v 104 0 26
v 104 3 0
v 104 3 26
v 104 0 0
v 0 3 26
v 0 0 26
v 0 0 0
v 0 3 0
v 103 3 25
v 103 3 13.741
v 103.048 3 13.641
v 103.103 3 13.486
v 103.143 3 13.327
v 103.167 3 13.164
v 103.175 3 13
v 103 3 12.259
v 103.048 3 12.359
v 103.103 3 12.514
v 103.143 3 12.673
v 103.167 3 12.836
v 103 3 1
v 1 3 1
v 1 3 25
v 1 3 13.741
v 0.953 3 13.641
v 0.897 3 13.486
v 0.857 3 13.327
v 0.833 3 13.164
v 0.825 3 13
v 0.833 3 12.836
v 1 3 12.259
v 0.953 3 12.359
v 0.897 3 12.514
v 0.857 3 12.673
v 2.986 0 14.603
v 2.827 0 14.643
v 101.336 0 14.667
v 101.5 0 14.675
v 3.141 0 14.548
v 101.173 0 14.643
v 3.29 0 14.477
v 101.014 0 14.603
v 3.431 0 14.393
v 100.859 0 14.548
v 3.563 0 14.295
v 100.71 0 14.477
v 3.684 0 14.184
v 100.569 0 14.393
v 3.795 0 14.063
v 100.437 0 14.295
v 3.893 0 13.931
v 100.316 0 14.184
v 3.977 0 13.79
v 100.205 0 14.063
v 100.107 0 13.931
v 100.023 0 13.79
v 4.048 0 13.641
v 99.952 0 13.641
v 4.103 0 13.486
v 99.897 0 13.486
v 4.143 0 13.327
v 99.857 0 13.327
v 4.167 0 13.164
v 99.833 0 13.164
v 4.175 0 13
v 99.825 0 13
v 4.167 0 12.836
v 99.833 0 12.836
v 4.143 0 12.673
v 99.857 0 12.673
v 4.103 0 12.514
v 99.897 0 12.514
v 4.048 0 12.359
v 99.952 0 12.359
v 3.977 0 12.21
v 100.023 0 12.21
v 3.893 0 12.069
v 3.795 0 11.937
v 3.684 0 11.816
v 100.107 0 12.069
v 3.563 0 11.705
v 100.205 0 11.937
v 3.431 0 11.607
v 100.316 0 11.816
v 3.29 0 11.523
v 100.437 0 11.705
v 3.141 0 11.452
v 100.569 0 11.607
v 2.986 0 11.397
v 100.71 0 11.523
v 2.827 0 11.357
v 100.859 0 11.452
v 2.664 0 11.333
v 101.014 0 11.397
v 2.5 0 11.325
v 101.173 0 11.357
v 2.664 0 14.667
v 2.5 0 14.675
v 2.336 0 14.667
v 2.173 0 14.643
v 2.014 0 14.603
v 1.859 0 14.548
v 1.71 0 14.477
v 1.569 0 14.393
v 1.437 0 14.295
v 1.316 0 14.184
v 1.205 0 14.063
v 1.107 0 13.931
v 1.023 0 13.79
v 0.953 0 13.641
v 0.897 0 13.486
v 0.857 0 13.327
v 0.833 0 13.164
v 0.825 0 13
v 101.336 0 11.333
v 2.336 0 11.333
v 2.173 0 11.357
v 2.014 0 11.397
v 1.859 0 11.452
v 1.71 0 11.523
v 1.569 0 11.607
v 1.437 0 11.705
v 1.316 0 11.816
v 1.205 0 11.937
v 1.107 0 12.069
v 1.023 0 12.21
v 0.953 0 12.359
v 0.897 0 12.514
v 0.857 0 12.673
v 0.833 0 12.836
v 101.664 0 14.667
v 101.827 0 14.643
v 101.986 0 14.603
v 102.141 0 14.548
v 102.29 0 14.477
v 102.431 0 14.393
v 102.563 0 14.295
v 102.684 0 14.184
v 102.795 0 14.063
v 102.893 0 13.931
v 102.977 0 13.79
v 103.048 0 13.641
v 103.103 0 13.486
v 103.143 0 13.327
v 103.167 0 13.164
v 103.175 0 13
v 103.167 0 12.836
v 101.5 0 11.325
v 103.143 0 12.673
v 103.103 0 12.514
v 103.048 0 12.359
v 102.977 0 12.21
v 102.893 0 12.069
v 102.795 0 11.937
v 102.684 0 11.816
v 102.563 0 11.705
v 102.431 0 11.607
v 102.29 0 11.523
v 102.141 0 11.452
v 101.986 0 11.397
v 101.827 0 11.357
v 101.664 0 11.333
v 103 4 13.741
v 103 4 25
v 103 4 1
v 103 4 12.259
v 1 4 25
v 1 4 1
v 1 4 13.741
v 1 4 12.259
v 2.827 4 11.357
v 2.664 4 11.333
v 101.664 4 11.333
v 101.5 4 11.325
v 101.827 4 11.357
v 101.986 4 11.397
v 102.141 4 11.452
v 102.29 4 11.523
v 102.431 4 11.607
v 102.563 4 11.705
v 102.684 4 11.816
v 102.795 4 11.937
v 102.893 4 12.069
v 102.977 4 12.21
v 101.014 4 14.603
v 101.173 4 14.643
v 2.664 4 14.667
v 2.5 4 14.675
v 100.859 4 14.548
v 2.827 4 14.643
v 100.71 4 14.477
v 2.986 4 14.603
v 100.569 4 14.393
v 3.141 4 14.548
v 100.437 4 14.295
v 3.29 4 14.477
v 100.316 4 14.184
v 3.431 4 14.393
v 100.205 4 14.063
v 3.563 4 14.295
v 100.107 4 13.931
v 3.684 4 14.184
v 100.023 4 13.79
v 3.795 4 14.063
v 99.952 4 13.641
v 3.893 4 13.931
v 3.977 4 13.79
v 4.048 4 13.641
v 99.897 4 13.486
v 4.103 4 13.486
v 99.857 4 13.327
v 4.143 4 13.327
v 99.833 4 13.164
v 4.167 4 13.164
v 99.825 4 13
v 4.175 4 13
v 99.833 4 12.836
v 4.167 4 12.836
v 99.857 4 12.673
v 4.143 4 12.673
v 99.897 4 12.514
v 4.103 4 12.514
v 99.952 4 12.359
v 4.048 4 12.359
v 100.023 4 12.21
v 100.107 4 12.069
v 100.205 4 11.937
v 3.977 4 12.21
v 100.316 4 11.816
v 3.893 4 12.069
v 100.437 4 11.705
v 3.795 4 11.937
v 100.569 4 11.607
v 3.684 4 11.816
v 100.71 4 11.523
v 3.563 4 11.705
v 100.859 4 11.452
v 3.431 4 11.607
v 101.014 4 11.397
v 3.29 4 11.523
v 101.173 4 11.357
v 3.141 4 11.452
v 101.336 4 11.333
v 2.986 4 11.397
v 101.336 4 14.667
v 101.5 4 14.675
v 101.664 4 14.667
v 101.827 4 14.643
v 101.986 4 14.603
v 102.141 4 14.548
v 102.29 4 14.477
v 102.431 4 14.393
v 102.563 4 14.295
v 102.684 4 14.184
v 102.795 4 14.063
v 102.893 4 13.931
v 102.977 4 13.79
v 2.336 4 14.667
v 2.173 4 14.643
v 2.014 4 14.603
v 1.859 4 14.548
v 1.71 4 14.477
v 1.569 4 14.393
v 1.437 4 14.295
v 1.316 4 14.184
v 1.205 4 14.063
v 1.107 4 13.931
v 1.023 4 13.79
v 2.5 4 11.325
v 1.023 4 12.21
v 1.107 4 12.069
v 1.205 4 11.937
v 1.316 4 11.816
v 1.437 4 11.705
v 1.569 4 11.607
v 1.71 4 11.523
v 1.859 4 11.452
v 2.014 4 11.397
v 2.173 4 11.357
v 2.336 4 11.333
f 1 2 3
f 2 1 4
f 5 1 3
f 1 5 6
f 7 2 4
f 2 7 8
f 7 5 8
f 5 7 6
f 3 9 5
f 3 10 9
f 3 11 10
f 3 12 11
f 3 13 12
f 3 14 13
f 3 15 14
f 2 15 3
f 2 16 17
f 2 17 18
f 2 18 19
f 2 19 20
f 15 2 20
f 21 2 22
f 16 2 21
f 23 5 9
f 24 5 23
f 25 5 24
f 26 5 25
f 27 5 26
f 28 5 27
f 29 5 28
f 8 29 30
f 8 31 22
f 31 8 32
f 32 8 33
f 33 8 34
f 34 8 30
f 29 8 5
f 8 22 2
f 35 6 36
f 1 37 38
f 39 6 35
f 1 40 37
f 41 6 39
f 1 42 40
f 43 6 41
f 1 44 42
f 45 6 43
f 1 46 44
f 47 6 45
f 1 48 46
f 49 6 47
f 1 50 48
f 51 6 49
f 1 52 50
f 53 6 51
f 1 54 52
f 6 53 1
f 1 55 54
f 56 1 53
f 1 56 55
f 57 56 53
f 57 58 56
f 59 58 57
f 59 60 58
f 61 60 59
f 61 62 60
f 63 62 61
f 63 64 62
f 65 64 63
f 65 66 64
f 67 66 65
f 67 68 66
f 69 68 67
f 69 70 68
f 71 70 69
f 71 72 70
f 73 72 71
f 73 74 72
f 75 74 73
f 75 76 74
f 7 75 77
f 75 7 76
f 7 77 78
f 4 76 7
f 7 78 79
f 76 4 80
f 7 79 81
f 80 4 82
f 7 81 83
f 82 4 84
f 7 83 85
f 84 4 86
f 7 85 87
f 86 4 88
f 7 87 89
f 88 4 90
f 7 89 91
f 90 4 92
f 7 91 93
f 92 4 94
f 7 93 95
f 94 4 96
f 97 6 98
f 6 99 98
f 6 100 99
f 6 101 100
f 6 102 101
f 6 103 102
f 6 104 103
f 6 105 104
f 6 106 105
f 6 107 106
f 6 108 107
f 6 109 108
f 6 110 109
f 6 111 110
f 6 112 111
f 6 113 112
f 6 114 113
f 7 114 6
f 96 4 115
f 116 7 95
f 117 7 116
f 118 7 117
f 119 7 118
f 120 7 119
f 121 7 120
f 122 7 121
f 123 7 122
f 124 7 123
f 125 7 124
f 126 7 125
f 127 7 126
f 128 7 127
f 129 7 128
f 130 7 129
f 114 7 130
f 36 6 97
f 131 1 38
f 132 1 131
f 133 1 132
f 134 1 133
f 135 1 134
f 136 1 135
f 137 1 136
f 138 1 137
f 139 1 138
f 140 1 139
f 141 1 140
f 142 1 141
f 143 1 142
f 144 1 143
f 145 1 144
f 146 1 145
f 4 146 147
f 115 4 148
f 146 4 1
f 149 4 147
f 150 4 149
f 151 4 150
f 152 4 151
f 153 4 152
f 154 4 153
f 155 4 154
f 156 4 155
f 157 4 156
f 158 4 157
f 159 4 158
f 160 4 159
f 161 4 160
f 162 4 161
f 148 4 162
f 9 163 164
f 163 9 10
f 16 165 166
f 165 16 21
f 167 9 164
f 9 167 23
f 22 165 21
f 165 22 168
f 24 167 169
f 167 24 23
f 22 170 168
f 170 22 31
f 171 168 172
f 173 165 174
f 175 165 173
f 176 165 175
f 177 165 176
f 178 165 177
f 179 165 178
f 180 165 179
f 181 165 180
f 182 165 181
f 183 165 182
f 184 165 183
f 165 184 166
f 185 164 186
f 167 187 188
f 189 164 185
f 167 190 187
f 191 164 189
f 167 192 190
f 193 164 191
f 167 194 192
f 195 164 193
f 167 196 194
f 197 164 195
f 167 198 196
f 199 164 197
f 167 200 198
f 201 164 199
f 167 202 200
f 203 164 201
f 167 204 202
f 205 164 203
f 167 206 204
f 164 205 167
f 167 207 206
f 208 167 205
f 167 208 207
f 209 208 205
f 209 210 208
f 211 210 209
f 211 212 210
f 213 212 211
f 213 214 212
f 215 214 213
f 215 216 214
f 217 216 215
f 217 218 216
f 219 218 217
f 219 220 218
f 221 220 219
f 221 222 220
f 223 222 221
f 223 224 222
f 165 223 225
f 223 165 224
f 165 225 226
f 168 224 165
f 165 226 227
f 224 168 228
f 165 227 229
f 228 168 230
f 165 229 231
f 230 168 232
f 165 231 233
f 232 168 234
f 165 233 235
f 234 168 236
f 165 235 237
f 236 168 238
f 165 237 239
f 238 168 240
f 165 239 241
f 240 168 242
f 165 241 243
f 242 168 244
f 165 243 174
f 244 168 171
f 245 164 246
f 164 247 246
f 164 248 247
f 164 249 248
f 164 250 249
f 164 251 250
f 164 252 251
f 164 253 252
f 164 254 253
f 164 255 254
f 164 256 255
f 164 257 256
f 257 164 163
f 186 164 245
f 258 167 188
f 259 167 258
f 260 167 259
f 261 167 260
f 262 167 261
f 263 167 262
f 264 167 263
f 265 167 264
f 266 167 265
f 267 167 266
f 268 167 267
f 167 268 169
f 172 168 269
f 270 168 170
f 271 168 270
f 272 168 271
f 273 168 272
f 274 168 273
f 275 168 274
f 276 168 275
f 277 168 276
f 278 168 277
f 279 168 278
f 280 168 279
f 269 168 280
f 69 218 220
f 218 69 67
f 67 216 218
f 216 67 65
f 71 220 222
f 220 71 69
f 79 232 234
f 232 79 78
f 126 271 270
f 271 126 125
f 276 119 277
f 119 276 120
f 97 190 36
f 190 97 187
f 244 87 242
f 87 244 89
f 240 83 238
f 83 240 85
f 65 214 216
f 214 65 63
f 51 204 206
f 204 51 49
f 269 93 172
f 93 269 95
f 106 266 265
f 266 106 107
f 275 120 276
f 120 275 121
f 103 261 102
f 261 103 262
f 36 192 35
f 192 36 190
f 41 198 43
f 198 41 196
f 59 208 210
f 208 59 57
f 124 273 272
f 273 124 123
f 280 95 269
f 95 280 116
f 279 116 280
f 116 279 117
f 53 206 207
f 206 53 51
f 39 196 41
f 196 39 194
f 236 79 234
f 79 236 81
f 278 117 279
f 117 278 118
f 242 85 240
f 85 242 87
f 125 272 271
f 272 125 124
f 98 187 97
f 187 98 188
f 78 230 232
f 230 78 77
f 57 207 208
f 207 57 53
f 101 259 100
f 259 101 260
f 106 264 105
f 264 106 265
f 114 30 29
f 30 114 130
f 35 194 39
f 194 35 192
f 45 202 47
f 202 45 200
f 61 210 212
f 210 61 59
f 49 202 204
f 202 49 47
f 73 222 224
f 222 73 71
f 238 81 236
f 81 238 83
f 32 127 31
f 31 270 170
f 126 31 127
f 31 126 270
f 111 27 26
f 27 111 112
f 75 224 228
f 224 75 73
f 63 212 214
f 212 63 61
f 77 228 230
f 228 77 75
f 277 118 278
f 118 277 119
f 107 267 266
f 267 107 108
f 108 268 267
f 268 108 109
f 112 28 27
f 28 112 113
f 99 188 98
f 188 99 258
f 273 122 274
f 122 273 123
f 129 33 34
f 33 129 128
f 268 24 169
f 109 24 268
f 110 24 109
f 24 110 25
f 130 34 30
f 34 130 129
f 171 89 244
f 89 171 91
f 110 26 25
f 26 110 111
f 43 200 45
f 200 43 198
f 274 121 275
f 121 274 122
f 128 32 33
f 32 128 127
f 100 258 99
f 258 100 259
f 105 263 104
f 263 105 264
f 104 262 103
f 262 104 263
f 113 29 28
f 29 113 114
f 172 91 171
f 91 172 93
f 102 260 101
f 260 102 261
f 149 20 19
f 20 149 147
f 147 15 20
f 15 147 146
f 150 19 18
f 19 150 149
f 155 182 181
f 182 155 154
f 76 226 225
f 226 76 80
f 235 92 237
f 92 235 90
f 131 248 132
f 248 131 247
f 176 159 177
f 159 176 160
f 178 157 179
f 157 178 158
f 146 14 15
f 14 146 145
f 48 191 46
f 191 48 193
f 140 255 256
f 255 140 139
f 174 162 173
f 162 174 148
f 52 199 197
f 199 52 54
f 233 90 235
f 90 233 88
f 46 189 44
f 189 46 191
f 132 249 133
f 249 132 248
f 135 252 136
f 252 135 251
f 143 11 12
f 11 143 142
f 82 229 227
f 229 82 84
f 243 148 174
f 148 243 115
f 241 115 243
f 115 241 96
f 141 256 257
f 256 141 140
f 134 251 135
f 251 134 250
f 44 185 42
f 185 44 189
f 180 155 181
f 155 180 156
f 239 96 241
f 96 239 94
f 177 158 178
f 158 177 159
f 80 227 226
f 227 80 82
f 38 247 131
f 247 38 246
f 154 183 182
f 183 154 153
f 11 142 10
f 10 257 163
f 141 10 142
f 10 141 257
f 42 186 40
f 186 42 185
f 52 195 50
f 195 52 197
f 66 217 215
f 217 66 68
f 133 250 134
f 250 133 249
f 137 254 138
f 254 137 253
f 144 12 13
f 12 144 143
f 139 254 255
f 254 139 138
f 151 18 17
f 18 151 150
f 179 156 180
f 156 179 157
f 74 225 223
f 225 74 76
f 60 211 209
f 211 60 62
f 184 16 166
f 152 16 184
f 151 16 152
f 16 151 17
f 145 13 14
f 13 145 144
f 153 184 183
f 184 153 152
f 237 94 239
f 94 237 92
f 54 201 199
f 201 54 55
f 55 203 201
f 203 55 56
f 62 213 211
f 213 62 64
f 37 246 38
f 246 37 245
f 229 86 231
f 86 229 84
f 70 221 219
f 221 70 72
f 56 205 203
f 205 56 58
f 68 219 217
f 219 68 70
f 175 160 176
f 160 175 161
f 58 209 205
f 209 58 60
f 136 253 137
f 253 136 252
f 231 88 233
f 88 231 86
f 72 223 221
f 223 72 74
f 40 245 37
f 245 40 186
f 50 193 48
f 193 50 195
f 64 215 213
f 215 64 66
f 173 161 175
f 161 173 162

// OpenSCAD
include <IceGeiger_FieldCase_v1.5.1_COMPLETE.scad>;
part="beta_cap";
